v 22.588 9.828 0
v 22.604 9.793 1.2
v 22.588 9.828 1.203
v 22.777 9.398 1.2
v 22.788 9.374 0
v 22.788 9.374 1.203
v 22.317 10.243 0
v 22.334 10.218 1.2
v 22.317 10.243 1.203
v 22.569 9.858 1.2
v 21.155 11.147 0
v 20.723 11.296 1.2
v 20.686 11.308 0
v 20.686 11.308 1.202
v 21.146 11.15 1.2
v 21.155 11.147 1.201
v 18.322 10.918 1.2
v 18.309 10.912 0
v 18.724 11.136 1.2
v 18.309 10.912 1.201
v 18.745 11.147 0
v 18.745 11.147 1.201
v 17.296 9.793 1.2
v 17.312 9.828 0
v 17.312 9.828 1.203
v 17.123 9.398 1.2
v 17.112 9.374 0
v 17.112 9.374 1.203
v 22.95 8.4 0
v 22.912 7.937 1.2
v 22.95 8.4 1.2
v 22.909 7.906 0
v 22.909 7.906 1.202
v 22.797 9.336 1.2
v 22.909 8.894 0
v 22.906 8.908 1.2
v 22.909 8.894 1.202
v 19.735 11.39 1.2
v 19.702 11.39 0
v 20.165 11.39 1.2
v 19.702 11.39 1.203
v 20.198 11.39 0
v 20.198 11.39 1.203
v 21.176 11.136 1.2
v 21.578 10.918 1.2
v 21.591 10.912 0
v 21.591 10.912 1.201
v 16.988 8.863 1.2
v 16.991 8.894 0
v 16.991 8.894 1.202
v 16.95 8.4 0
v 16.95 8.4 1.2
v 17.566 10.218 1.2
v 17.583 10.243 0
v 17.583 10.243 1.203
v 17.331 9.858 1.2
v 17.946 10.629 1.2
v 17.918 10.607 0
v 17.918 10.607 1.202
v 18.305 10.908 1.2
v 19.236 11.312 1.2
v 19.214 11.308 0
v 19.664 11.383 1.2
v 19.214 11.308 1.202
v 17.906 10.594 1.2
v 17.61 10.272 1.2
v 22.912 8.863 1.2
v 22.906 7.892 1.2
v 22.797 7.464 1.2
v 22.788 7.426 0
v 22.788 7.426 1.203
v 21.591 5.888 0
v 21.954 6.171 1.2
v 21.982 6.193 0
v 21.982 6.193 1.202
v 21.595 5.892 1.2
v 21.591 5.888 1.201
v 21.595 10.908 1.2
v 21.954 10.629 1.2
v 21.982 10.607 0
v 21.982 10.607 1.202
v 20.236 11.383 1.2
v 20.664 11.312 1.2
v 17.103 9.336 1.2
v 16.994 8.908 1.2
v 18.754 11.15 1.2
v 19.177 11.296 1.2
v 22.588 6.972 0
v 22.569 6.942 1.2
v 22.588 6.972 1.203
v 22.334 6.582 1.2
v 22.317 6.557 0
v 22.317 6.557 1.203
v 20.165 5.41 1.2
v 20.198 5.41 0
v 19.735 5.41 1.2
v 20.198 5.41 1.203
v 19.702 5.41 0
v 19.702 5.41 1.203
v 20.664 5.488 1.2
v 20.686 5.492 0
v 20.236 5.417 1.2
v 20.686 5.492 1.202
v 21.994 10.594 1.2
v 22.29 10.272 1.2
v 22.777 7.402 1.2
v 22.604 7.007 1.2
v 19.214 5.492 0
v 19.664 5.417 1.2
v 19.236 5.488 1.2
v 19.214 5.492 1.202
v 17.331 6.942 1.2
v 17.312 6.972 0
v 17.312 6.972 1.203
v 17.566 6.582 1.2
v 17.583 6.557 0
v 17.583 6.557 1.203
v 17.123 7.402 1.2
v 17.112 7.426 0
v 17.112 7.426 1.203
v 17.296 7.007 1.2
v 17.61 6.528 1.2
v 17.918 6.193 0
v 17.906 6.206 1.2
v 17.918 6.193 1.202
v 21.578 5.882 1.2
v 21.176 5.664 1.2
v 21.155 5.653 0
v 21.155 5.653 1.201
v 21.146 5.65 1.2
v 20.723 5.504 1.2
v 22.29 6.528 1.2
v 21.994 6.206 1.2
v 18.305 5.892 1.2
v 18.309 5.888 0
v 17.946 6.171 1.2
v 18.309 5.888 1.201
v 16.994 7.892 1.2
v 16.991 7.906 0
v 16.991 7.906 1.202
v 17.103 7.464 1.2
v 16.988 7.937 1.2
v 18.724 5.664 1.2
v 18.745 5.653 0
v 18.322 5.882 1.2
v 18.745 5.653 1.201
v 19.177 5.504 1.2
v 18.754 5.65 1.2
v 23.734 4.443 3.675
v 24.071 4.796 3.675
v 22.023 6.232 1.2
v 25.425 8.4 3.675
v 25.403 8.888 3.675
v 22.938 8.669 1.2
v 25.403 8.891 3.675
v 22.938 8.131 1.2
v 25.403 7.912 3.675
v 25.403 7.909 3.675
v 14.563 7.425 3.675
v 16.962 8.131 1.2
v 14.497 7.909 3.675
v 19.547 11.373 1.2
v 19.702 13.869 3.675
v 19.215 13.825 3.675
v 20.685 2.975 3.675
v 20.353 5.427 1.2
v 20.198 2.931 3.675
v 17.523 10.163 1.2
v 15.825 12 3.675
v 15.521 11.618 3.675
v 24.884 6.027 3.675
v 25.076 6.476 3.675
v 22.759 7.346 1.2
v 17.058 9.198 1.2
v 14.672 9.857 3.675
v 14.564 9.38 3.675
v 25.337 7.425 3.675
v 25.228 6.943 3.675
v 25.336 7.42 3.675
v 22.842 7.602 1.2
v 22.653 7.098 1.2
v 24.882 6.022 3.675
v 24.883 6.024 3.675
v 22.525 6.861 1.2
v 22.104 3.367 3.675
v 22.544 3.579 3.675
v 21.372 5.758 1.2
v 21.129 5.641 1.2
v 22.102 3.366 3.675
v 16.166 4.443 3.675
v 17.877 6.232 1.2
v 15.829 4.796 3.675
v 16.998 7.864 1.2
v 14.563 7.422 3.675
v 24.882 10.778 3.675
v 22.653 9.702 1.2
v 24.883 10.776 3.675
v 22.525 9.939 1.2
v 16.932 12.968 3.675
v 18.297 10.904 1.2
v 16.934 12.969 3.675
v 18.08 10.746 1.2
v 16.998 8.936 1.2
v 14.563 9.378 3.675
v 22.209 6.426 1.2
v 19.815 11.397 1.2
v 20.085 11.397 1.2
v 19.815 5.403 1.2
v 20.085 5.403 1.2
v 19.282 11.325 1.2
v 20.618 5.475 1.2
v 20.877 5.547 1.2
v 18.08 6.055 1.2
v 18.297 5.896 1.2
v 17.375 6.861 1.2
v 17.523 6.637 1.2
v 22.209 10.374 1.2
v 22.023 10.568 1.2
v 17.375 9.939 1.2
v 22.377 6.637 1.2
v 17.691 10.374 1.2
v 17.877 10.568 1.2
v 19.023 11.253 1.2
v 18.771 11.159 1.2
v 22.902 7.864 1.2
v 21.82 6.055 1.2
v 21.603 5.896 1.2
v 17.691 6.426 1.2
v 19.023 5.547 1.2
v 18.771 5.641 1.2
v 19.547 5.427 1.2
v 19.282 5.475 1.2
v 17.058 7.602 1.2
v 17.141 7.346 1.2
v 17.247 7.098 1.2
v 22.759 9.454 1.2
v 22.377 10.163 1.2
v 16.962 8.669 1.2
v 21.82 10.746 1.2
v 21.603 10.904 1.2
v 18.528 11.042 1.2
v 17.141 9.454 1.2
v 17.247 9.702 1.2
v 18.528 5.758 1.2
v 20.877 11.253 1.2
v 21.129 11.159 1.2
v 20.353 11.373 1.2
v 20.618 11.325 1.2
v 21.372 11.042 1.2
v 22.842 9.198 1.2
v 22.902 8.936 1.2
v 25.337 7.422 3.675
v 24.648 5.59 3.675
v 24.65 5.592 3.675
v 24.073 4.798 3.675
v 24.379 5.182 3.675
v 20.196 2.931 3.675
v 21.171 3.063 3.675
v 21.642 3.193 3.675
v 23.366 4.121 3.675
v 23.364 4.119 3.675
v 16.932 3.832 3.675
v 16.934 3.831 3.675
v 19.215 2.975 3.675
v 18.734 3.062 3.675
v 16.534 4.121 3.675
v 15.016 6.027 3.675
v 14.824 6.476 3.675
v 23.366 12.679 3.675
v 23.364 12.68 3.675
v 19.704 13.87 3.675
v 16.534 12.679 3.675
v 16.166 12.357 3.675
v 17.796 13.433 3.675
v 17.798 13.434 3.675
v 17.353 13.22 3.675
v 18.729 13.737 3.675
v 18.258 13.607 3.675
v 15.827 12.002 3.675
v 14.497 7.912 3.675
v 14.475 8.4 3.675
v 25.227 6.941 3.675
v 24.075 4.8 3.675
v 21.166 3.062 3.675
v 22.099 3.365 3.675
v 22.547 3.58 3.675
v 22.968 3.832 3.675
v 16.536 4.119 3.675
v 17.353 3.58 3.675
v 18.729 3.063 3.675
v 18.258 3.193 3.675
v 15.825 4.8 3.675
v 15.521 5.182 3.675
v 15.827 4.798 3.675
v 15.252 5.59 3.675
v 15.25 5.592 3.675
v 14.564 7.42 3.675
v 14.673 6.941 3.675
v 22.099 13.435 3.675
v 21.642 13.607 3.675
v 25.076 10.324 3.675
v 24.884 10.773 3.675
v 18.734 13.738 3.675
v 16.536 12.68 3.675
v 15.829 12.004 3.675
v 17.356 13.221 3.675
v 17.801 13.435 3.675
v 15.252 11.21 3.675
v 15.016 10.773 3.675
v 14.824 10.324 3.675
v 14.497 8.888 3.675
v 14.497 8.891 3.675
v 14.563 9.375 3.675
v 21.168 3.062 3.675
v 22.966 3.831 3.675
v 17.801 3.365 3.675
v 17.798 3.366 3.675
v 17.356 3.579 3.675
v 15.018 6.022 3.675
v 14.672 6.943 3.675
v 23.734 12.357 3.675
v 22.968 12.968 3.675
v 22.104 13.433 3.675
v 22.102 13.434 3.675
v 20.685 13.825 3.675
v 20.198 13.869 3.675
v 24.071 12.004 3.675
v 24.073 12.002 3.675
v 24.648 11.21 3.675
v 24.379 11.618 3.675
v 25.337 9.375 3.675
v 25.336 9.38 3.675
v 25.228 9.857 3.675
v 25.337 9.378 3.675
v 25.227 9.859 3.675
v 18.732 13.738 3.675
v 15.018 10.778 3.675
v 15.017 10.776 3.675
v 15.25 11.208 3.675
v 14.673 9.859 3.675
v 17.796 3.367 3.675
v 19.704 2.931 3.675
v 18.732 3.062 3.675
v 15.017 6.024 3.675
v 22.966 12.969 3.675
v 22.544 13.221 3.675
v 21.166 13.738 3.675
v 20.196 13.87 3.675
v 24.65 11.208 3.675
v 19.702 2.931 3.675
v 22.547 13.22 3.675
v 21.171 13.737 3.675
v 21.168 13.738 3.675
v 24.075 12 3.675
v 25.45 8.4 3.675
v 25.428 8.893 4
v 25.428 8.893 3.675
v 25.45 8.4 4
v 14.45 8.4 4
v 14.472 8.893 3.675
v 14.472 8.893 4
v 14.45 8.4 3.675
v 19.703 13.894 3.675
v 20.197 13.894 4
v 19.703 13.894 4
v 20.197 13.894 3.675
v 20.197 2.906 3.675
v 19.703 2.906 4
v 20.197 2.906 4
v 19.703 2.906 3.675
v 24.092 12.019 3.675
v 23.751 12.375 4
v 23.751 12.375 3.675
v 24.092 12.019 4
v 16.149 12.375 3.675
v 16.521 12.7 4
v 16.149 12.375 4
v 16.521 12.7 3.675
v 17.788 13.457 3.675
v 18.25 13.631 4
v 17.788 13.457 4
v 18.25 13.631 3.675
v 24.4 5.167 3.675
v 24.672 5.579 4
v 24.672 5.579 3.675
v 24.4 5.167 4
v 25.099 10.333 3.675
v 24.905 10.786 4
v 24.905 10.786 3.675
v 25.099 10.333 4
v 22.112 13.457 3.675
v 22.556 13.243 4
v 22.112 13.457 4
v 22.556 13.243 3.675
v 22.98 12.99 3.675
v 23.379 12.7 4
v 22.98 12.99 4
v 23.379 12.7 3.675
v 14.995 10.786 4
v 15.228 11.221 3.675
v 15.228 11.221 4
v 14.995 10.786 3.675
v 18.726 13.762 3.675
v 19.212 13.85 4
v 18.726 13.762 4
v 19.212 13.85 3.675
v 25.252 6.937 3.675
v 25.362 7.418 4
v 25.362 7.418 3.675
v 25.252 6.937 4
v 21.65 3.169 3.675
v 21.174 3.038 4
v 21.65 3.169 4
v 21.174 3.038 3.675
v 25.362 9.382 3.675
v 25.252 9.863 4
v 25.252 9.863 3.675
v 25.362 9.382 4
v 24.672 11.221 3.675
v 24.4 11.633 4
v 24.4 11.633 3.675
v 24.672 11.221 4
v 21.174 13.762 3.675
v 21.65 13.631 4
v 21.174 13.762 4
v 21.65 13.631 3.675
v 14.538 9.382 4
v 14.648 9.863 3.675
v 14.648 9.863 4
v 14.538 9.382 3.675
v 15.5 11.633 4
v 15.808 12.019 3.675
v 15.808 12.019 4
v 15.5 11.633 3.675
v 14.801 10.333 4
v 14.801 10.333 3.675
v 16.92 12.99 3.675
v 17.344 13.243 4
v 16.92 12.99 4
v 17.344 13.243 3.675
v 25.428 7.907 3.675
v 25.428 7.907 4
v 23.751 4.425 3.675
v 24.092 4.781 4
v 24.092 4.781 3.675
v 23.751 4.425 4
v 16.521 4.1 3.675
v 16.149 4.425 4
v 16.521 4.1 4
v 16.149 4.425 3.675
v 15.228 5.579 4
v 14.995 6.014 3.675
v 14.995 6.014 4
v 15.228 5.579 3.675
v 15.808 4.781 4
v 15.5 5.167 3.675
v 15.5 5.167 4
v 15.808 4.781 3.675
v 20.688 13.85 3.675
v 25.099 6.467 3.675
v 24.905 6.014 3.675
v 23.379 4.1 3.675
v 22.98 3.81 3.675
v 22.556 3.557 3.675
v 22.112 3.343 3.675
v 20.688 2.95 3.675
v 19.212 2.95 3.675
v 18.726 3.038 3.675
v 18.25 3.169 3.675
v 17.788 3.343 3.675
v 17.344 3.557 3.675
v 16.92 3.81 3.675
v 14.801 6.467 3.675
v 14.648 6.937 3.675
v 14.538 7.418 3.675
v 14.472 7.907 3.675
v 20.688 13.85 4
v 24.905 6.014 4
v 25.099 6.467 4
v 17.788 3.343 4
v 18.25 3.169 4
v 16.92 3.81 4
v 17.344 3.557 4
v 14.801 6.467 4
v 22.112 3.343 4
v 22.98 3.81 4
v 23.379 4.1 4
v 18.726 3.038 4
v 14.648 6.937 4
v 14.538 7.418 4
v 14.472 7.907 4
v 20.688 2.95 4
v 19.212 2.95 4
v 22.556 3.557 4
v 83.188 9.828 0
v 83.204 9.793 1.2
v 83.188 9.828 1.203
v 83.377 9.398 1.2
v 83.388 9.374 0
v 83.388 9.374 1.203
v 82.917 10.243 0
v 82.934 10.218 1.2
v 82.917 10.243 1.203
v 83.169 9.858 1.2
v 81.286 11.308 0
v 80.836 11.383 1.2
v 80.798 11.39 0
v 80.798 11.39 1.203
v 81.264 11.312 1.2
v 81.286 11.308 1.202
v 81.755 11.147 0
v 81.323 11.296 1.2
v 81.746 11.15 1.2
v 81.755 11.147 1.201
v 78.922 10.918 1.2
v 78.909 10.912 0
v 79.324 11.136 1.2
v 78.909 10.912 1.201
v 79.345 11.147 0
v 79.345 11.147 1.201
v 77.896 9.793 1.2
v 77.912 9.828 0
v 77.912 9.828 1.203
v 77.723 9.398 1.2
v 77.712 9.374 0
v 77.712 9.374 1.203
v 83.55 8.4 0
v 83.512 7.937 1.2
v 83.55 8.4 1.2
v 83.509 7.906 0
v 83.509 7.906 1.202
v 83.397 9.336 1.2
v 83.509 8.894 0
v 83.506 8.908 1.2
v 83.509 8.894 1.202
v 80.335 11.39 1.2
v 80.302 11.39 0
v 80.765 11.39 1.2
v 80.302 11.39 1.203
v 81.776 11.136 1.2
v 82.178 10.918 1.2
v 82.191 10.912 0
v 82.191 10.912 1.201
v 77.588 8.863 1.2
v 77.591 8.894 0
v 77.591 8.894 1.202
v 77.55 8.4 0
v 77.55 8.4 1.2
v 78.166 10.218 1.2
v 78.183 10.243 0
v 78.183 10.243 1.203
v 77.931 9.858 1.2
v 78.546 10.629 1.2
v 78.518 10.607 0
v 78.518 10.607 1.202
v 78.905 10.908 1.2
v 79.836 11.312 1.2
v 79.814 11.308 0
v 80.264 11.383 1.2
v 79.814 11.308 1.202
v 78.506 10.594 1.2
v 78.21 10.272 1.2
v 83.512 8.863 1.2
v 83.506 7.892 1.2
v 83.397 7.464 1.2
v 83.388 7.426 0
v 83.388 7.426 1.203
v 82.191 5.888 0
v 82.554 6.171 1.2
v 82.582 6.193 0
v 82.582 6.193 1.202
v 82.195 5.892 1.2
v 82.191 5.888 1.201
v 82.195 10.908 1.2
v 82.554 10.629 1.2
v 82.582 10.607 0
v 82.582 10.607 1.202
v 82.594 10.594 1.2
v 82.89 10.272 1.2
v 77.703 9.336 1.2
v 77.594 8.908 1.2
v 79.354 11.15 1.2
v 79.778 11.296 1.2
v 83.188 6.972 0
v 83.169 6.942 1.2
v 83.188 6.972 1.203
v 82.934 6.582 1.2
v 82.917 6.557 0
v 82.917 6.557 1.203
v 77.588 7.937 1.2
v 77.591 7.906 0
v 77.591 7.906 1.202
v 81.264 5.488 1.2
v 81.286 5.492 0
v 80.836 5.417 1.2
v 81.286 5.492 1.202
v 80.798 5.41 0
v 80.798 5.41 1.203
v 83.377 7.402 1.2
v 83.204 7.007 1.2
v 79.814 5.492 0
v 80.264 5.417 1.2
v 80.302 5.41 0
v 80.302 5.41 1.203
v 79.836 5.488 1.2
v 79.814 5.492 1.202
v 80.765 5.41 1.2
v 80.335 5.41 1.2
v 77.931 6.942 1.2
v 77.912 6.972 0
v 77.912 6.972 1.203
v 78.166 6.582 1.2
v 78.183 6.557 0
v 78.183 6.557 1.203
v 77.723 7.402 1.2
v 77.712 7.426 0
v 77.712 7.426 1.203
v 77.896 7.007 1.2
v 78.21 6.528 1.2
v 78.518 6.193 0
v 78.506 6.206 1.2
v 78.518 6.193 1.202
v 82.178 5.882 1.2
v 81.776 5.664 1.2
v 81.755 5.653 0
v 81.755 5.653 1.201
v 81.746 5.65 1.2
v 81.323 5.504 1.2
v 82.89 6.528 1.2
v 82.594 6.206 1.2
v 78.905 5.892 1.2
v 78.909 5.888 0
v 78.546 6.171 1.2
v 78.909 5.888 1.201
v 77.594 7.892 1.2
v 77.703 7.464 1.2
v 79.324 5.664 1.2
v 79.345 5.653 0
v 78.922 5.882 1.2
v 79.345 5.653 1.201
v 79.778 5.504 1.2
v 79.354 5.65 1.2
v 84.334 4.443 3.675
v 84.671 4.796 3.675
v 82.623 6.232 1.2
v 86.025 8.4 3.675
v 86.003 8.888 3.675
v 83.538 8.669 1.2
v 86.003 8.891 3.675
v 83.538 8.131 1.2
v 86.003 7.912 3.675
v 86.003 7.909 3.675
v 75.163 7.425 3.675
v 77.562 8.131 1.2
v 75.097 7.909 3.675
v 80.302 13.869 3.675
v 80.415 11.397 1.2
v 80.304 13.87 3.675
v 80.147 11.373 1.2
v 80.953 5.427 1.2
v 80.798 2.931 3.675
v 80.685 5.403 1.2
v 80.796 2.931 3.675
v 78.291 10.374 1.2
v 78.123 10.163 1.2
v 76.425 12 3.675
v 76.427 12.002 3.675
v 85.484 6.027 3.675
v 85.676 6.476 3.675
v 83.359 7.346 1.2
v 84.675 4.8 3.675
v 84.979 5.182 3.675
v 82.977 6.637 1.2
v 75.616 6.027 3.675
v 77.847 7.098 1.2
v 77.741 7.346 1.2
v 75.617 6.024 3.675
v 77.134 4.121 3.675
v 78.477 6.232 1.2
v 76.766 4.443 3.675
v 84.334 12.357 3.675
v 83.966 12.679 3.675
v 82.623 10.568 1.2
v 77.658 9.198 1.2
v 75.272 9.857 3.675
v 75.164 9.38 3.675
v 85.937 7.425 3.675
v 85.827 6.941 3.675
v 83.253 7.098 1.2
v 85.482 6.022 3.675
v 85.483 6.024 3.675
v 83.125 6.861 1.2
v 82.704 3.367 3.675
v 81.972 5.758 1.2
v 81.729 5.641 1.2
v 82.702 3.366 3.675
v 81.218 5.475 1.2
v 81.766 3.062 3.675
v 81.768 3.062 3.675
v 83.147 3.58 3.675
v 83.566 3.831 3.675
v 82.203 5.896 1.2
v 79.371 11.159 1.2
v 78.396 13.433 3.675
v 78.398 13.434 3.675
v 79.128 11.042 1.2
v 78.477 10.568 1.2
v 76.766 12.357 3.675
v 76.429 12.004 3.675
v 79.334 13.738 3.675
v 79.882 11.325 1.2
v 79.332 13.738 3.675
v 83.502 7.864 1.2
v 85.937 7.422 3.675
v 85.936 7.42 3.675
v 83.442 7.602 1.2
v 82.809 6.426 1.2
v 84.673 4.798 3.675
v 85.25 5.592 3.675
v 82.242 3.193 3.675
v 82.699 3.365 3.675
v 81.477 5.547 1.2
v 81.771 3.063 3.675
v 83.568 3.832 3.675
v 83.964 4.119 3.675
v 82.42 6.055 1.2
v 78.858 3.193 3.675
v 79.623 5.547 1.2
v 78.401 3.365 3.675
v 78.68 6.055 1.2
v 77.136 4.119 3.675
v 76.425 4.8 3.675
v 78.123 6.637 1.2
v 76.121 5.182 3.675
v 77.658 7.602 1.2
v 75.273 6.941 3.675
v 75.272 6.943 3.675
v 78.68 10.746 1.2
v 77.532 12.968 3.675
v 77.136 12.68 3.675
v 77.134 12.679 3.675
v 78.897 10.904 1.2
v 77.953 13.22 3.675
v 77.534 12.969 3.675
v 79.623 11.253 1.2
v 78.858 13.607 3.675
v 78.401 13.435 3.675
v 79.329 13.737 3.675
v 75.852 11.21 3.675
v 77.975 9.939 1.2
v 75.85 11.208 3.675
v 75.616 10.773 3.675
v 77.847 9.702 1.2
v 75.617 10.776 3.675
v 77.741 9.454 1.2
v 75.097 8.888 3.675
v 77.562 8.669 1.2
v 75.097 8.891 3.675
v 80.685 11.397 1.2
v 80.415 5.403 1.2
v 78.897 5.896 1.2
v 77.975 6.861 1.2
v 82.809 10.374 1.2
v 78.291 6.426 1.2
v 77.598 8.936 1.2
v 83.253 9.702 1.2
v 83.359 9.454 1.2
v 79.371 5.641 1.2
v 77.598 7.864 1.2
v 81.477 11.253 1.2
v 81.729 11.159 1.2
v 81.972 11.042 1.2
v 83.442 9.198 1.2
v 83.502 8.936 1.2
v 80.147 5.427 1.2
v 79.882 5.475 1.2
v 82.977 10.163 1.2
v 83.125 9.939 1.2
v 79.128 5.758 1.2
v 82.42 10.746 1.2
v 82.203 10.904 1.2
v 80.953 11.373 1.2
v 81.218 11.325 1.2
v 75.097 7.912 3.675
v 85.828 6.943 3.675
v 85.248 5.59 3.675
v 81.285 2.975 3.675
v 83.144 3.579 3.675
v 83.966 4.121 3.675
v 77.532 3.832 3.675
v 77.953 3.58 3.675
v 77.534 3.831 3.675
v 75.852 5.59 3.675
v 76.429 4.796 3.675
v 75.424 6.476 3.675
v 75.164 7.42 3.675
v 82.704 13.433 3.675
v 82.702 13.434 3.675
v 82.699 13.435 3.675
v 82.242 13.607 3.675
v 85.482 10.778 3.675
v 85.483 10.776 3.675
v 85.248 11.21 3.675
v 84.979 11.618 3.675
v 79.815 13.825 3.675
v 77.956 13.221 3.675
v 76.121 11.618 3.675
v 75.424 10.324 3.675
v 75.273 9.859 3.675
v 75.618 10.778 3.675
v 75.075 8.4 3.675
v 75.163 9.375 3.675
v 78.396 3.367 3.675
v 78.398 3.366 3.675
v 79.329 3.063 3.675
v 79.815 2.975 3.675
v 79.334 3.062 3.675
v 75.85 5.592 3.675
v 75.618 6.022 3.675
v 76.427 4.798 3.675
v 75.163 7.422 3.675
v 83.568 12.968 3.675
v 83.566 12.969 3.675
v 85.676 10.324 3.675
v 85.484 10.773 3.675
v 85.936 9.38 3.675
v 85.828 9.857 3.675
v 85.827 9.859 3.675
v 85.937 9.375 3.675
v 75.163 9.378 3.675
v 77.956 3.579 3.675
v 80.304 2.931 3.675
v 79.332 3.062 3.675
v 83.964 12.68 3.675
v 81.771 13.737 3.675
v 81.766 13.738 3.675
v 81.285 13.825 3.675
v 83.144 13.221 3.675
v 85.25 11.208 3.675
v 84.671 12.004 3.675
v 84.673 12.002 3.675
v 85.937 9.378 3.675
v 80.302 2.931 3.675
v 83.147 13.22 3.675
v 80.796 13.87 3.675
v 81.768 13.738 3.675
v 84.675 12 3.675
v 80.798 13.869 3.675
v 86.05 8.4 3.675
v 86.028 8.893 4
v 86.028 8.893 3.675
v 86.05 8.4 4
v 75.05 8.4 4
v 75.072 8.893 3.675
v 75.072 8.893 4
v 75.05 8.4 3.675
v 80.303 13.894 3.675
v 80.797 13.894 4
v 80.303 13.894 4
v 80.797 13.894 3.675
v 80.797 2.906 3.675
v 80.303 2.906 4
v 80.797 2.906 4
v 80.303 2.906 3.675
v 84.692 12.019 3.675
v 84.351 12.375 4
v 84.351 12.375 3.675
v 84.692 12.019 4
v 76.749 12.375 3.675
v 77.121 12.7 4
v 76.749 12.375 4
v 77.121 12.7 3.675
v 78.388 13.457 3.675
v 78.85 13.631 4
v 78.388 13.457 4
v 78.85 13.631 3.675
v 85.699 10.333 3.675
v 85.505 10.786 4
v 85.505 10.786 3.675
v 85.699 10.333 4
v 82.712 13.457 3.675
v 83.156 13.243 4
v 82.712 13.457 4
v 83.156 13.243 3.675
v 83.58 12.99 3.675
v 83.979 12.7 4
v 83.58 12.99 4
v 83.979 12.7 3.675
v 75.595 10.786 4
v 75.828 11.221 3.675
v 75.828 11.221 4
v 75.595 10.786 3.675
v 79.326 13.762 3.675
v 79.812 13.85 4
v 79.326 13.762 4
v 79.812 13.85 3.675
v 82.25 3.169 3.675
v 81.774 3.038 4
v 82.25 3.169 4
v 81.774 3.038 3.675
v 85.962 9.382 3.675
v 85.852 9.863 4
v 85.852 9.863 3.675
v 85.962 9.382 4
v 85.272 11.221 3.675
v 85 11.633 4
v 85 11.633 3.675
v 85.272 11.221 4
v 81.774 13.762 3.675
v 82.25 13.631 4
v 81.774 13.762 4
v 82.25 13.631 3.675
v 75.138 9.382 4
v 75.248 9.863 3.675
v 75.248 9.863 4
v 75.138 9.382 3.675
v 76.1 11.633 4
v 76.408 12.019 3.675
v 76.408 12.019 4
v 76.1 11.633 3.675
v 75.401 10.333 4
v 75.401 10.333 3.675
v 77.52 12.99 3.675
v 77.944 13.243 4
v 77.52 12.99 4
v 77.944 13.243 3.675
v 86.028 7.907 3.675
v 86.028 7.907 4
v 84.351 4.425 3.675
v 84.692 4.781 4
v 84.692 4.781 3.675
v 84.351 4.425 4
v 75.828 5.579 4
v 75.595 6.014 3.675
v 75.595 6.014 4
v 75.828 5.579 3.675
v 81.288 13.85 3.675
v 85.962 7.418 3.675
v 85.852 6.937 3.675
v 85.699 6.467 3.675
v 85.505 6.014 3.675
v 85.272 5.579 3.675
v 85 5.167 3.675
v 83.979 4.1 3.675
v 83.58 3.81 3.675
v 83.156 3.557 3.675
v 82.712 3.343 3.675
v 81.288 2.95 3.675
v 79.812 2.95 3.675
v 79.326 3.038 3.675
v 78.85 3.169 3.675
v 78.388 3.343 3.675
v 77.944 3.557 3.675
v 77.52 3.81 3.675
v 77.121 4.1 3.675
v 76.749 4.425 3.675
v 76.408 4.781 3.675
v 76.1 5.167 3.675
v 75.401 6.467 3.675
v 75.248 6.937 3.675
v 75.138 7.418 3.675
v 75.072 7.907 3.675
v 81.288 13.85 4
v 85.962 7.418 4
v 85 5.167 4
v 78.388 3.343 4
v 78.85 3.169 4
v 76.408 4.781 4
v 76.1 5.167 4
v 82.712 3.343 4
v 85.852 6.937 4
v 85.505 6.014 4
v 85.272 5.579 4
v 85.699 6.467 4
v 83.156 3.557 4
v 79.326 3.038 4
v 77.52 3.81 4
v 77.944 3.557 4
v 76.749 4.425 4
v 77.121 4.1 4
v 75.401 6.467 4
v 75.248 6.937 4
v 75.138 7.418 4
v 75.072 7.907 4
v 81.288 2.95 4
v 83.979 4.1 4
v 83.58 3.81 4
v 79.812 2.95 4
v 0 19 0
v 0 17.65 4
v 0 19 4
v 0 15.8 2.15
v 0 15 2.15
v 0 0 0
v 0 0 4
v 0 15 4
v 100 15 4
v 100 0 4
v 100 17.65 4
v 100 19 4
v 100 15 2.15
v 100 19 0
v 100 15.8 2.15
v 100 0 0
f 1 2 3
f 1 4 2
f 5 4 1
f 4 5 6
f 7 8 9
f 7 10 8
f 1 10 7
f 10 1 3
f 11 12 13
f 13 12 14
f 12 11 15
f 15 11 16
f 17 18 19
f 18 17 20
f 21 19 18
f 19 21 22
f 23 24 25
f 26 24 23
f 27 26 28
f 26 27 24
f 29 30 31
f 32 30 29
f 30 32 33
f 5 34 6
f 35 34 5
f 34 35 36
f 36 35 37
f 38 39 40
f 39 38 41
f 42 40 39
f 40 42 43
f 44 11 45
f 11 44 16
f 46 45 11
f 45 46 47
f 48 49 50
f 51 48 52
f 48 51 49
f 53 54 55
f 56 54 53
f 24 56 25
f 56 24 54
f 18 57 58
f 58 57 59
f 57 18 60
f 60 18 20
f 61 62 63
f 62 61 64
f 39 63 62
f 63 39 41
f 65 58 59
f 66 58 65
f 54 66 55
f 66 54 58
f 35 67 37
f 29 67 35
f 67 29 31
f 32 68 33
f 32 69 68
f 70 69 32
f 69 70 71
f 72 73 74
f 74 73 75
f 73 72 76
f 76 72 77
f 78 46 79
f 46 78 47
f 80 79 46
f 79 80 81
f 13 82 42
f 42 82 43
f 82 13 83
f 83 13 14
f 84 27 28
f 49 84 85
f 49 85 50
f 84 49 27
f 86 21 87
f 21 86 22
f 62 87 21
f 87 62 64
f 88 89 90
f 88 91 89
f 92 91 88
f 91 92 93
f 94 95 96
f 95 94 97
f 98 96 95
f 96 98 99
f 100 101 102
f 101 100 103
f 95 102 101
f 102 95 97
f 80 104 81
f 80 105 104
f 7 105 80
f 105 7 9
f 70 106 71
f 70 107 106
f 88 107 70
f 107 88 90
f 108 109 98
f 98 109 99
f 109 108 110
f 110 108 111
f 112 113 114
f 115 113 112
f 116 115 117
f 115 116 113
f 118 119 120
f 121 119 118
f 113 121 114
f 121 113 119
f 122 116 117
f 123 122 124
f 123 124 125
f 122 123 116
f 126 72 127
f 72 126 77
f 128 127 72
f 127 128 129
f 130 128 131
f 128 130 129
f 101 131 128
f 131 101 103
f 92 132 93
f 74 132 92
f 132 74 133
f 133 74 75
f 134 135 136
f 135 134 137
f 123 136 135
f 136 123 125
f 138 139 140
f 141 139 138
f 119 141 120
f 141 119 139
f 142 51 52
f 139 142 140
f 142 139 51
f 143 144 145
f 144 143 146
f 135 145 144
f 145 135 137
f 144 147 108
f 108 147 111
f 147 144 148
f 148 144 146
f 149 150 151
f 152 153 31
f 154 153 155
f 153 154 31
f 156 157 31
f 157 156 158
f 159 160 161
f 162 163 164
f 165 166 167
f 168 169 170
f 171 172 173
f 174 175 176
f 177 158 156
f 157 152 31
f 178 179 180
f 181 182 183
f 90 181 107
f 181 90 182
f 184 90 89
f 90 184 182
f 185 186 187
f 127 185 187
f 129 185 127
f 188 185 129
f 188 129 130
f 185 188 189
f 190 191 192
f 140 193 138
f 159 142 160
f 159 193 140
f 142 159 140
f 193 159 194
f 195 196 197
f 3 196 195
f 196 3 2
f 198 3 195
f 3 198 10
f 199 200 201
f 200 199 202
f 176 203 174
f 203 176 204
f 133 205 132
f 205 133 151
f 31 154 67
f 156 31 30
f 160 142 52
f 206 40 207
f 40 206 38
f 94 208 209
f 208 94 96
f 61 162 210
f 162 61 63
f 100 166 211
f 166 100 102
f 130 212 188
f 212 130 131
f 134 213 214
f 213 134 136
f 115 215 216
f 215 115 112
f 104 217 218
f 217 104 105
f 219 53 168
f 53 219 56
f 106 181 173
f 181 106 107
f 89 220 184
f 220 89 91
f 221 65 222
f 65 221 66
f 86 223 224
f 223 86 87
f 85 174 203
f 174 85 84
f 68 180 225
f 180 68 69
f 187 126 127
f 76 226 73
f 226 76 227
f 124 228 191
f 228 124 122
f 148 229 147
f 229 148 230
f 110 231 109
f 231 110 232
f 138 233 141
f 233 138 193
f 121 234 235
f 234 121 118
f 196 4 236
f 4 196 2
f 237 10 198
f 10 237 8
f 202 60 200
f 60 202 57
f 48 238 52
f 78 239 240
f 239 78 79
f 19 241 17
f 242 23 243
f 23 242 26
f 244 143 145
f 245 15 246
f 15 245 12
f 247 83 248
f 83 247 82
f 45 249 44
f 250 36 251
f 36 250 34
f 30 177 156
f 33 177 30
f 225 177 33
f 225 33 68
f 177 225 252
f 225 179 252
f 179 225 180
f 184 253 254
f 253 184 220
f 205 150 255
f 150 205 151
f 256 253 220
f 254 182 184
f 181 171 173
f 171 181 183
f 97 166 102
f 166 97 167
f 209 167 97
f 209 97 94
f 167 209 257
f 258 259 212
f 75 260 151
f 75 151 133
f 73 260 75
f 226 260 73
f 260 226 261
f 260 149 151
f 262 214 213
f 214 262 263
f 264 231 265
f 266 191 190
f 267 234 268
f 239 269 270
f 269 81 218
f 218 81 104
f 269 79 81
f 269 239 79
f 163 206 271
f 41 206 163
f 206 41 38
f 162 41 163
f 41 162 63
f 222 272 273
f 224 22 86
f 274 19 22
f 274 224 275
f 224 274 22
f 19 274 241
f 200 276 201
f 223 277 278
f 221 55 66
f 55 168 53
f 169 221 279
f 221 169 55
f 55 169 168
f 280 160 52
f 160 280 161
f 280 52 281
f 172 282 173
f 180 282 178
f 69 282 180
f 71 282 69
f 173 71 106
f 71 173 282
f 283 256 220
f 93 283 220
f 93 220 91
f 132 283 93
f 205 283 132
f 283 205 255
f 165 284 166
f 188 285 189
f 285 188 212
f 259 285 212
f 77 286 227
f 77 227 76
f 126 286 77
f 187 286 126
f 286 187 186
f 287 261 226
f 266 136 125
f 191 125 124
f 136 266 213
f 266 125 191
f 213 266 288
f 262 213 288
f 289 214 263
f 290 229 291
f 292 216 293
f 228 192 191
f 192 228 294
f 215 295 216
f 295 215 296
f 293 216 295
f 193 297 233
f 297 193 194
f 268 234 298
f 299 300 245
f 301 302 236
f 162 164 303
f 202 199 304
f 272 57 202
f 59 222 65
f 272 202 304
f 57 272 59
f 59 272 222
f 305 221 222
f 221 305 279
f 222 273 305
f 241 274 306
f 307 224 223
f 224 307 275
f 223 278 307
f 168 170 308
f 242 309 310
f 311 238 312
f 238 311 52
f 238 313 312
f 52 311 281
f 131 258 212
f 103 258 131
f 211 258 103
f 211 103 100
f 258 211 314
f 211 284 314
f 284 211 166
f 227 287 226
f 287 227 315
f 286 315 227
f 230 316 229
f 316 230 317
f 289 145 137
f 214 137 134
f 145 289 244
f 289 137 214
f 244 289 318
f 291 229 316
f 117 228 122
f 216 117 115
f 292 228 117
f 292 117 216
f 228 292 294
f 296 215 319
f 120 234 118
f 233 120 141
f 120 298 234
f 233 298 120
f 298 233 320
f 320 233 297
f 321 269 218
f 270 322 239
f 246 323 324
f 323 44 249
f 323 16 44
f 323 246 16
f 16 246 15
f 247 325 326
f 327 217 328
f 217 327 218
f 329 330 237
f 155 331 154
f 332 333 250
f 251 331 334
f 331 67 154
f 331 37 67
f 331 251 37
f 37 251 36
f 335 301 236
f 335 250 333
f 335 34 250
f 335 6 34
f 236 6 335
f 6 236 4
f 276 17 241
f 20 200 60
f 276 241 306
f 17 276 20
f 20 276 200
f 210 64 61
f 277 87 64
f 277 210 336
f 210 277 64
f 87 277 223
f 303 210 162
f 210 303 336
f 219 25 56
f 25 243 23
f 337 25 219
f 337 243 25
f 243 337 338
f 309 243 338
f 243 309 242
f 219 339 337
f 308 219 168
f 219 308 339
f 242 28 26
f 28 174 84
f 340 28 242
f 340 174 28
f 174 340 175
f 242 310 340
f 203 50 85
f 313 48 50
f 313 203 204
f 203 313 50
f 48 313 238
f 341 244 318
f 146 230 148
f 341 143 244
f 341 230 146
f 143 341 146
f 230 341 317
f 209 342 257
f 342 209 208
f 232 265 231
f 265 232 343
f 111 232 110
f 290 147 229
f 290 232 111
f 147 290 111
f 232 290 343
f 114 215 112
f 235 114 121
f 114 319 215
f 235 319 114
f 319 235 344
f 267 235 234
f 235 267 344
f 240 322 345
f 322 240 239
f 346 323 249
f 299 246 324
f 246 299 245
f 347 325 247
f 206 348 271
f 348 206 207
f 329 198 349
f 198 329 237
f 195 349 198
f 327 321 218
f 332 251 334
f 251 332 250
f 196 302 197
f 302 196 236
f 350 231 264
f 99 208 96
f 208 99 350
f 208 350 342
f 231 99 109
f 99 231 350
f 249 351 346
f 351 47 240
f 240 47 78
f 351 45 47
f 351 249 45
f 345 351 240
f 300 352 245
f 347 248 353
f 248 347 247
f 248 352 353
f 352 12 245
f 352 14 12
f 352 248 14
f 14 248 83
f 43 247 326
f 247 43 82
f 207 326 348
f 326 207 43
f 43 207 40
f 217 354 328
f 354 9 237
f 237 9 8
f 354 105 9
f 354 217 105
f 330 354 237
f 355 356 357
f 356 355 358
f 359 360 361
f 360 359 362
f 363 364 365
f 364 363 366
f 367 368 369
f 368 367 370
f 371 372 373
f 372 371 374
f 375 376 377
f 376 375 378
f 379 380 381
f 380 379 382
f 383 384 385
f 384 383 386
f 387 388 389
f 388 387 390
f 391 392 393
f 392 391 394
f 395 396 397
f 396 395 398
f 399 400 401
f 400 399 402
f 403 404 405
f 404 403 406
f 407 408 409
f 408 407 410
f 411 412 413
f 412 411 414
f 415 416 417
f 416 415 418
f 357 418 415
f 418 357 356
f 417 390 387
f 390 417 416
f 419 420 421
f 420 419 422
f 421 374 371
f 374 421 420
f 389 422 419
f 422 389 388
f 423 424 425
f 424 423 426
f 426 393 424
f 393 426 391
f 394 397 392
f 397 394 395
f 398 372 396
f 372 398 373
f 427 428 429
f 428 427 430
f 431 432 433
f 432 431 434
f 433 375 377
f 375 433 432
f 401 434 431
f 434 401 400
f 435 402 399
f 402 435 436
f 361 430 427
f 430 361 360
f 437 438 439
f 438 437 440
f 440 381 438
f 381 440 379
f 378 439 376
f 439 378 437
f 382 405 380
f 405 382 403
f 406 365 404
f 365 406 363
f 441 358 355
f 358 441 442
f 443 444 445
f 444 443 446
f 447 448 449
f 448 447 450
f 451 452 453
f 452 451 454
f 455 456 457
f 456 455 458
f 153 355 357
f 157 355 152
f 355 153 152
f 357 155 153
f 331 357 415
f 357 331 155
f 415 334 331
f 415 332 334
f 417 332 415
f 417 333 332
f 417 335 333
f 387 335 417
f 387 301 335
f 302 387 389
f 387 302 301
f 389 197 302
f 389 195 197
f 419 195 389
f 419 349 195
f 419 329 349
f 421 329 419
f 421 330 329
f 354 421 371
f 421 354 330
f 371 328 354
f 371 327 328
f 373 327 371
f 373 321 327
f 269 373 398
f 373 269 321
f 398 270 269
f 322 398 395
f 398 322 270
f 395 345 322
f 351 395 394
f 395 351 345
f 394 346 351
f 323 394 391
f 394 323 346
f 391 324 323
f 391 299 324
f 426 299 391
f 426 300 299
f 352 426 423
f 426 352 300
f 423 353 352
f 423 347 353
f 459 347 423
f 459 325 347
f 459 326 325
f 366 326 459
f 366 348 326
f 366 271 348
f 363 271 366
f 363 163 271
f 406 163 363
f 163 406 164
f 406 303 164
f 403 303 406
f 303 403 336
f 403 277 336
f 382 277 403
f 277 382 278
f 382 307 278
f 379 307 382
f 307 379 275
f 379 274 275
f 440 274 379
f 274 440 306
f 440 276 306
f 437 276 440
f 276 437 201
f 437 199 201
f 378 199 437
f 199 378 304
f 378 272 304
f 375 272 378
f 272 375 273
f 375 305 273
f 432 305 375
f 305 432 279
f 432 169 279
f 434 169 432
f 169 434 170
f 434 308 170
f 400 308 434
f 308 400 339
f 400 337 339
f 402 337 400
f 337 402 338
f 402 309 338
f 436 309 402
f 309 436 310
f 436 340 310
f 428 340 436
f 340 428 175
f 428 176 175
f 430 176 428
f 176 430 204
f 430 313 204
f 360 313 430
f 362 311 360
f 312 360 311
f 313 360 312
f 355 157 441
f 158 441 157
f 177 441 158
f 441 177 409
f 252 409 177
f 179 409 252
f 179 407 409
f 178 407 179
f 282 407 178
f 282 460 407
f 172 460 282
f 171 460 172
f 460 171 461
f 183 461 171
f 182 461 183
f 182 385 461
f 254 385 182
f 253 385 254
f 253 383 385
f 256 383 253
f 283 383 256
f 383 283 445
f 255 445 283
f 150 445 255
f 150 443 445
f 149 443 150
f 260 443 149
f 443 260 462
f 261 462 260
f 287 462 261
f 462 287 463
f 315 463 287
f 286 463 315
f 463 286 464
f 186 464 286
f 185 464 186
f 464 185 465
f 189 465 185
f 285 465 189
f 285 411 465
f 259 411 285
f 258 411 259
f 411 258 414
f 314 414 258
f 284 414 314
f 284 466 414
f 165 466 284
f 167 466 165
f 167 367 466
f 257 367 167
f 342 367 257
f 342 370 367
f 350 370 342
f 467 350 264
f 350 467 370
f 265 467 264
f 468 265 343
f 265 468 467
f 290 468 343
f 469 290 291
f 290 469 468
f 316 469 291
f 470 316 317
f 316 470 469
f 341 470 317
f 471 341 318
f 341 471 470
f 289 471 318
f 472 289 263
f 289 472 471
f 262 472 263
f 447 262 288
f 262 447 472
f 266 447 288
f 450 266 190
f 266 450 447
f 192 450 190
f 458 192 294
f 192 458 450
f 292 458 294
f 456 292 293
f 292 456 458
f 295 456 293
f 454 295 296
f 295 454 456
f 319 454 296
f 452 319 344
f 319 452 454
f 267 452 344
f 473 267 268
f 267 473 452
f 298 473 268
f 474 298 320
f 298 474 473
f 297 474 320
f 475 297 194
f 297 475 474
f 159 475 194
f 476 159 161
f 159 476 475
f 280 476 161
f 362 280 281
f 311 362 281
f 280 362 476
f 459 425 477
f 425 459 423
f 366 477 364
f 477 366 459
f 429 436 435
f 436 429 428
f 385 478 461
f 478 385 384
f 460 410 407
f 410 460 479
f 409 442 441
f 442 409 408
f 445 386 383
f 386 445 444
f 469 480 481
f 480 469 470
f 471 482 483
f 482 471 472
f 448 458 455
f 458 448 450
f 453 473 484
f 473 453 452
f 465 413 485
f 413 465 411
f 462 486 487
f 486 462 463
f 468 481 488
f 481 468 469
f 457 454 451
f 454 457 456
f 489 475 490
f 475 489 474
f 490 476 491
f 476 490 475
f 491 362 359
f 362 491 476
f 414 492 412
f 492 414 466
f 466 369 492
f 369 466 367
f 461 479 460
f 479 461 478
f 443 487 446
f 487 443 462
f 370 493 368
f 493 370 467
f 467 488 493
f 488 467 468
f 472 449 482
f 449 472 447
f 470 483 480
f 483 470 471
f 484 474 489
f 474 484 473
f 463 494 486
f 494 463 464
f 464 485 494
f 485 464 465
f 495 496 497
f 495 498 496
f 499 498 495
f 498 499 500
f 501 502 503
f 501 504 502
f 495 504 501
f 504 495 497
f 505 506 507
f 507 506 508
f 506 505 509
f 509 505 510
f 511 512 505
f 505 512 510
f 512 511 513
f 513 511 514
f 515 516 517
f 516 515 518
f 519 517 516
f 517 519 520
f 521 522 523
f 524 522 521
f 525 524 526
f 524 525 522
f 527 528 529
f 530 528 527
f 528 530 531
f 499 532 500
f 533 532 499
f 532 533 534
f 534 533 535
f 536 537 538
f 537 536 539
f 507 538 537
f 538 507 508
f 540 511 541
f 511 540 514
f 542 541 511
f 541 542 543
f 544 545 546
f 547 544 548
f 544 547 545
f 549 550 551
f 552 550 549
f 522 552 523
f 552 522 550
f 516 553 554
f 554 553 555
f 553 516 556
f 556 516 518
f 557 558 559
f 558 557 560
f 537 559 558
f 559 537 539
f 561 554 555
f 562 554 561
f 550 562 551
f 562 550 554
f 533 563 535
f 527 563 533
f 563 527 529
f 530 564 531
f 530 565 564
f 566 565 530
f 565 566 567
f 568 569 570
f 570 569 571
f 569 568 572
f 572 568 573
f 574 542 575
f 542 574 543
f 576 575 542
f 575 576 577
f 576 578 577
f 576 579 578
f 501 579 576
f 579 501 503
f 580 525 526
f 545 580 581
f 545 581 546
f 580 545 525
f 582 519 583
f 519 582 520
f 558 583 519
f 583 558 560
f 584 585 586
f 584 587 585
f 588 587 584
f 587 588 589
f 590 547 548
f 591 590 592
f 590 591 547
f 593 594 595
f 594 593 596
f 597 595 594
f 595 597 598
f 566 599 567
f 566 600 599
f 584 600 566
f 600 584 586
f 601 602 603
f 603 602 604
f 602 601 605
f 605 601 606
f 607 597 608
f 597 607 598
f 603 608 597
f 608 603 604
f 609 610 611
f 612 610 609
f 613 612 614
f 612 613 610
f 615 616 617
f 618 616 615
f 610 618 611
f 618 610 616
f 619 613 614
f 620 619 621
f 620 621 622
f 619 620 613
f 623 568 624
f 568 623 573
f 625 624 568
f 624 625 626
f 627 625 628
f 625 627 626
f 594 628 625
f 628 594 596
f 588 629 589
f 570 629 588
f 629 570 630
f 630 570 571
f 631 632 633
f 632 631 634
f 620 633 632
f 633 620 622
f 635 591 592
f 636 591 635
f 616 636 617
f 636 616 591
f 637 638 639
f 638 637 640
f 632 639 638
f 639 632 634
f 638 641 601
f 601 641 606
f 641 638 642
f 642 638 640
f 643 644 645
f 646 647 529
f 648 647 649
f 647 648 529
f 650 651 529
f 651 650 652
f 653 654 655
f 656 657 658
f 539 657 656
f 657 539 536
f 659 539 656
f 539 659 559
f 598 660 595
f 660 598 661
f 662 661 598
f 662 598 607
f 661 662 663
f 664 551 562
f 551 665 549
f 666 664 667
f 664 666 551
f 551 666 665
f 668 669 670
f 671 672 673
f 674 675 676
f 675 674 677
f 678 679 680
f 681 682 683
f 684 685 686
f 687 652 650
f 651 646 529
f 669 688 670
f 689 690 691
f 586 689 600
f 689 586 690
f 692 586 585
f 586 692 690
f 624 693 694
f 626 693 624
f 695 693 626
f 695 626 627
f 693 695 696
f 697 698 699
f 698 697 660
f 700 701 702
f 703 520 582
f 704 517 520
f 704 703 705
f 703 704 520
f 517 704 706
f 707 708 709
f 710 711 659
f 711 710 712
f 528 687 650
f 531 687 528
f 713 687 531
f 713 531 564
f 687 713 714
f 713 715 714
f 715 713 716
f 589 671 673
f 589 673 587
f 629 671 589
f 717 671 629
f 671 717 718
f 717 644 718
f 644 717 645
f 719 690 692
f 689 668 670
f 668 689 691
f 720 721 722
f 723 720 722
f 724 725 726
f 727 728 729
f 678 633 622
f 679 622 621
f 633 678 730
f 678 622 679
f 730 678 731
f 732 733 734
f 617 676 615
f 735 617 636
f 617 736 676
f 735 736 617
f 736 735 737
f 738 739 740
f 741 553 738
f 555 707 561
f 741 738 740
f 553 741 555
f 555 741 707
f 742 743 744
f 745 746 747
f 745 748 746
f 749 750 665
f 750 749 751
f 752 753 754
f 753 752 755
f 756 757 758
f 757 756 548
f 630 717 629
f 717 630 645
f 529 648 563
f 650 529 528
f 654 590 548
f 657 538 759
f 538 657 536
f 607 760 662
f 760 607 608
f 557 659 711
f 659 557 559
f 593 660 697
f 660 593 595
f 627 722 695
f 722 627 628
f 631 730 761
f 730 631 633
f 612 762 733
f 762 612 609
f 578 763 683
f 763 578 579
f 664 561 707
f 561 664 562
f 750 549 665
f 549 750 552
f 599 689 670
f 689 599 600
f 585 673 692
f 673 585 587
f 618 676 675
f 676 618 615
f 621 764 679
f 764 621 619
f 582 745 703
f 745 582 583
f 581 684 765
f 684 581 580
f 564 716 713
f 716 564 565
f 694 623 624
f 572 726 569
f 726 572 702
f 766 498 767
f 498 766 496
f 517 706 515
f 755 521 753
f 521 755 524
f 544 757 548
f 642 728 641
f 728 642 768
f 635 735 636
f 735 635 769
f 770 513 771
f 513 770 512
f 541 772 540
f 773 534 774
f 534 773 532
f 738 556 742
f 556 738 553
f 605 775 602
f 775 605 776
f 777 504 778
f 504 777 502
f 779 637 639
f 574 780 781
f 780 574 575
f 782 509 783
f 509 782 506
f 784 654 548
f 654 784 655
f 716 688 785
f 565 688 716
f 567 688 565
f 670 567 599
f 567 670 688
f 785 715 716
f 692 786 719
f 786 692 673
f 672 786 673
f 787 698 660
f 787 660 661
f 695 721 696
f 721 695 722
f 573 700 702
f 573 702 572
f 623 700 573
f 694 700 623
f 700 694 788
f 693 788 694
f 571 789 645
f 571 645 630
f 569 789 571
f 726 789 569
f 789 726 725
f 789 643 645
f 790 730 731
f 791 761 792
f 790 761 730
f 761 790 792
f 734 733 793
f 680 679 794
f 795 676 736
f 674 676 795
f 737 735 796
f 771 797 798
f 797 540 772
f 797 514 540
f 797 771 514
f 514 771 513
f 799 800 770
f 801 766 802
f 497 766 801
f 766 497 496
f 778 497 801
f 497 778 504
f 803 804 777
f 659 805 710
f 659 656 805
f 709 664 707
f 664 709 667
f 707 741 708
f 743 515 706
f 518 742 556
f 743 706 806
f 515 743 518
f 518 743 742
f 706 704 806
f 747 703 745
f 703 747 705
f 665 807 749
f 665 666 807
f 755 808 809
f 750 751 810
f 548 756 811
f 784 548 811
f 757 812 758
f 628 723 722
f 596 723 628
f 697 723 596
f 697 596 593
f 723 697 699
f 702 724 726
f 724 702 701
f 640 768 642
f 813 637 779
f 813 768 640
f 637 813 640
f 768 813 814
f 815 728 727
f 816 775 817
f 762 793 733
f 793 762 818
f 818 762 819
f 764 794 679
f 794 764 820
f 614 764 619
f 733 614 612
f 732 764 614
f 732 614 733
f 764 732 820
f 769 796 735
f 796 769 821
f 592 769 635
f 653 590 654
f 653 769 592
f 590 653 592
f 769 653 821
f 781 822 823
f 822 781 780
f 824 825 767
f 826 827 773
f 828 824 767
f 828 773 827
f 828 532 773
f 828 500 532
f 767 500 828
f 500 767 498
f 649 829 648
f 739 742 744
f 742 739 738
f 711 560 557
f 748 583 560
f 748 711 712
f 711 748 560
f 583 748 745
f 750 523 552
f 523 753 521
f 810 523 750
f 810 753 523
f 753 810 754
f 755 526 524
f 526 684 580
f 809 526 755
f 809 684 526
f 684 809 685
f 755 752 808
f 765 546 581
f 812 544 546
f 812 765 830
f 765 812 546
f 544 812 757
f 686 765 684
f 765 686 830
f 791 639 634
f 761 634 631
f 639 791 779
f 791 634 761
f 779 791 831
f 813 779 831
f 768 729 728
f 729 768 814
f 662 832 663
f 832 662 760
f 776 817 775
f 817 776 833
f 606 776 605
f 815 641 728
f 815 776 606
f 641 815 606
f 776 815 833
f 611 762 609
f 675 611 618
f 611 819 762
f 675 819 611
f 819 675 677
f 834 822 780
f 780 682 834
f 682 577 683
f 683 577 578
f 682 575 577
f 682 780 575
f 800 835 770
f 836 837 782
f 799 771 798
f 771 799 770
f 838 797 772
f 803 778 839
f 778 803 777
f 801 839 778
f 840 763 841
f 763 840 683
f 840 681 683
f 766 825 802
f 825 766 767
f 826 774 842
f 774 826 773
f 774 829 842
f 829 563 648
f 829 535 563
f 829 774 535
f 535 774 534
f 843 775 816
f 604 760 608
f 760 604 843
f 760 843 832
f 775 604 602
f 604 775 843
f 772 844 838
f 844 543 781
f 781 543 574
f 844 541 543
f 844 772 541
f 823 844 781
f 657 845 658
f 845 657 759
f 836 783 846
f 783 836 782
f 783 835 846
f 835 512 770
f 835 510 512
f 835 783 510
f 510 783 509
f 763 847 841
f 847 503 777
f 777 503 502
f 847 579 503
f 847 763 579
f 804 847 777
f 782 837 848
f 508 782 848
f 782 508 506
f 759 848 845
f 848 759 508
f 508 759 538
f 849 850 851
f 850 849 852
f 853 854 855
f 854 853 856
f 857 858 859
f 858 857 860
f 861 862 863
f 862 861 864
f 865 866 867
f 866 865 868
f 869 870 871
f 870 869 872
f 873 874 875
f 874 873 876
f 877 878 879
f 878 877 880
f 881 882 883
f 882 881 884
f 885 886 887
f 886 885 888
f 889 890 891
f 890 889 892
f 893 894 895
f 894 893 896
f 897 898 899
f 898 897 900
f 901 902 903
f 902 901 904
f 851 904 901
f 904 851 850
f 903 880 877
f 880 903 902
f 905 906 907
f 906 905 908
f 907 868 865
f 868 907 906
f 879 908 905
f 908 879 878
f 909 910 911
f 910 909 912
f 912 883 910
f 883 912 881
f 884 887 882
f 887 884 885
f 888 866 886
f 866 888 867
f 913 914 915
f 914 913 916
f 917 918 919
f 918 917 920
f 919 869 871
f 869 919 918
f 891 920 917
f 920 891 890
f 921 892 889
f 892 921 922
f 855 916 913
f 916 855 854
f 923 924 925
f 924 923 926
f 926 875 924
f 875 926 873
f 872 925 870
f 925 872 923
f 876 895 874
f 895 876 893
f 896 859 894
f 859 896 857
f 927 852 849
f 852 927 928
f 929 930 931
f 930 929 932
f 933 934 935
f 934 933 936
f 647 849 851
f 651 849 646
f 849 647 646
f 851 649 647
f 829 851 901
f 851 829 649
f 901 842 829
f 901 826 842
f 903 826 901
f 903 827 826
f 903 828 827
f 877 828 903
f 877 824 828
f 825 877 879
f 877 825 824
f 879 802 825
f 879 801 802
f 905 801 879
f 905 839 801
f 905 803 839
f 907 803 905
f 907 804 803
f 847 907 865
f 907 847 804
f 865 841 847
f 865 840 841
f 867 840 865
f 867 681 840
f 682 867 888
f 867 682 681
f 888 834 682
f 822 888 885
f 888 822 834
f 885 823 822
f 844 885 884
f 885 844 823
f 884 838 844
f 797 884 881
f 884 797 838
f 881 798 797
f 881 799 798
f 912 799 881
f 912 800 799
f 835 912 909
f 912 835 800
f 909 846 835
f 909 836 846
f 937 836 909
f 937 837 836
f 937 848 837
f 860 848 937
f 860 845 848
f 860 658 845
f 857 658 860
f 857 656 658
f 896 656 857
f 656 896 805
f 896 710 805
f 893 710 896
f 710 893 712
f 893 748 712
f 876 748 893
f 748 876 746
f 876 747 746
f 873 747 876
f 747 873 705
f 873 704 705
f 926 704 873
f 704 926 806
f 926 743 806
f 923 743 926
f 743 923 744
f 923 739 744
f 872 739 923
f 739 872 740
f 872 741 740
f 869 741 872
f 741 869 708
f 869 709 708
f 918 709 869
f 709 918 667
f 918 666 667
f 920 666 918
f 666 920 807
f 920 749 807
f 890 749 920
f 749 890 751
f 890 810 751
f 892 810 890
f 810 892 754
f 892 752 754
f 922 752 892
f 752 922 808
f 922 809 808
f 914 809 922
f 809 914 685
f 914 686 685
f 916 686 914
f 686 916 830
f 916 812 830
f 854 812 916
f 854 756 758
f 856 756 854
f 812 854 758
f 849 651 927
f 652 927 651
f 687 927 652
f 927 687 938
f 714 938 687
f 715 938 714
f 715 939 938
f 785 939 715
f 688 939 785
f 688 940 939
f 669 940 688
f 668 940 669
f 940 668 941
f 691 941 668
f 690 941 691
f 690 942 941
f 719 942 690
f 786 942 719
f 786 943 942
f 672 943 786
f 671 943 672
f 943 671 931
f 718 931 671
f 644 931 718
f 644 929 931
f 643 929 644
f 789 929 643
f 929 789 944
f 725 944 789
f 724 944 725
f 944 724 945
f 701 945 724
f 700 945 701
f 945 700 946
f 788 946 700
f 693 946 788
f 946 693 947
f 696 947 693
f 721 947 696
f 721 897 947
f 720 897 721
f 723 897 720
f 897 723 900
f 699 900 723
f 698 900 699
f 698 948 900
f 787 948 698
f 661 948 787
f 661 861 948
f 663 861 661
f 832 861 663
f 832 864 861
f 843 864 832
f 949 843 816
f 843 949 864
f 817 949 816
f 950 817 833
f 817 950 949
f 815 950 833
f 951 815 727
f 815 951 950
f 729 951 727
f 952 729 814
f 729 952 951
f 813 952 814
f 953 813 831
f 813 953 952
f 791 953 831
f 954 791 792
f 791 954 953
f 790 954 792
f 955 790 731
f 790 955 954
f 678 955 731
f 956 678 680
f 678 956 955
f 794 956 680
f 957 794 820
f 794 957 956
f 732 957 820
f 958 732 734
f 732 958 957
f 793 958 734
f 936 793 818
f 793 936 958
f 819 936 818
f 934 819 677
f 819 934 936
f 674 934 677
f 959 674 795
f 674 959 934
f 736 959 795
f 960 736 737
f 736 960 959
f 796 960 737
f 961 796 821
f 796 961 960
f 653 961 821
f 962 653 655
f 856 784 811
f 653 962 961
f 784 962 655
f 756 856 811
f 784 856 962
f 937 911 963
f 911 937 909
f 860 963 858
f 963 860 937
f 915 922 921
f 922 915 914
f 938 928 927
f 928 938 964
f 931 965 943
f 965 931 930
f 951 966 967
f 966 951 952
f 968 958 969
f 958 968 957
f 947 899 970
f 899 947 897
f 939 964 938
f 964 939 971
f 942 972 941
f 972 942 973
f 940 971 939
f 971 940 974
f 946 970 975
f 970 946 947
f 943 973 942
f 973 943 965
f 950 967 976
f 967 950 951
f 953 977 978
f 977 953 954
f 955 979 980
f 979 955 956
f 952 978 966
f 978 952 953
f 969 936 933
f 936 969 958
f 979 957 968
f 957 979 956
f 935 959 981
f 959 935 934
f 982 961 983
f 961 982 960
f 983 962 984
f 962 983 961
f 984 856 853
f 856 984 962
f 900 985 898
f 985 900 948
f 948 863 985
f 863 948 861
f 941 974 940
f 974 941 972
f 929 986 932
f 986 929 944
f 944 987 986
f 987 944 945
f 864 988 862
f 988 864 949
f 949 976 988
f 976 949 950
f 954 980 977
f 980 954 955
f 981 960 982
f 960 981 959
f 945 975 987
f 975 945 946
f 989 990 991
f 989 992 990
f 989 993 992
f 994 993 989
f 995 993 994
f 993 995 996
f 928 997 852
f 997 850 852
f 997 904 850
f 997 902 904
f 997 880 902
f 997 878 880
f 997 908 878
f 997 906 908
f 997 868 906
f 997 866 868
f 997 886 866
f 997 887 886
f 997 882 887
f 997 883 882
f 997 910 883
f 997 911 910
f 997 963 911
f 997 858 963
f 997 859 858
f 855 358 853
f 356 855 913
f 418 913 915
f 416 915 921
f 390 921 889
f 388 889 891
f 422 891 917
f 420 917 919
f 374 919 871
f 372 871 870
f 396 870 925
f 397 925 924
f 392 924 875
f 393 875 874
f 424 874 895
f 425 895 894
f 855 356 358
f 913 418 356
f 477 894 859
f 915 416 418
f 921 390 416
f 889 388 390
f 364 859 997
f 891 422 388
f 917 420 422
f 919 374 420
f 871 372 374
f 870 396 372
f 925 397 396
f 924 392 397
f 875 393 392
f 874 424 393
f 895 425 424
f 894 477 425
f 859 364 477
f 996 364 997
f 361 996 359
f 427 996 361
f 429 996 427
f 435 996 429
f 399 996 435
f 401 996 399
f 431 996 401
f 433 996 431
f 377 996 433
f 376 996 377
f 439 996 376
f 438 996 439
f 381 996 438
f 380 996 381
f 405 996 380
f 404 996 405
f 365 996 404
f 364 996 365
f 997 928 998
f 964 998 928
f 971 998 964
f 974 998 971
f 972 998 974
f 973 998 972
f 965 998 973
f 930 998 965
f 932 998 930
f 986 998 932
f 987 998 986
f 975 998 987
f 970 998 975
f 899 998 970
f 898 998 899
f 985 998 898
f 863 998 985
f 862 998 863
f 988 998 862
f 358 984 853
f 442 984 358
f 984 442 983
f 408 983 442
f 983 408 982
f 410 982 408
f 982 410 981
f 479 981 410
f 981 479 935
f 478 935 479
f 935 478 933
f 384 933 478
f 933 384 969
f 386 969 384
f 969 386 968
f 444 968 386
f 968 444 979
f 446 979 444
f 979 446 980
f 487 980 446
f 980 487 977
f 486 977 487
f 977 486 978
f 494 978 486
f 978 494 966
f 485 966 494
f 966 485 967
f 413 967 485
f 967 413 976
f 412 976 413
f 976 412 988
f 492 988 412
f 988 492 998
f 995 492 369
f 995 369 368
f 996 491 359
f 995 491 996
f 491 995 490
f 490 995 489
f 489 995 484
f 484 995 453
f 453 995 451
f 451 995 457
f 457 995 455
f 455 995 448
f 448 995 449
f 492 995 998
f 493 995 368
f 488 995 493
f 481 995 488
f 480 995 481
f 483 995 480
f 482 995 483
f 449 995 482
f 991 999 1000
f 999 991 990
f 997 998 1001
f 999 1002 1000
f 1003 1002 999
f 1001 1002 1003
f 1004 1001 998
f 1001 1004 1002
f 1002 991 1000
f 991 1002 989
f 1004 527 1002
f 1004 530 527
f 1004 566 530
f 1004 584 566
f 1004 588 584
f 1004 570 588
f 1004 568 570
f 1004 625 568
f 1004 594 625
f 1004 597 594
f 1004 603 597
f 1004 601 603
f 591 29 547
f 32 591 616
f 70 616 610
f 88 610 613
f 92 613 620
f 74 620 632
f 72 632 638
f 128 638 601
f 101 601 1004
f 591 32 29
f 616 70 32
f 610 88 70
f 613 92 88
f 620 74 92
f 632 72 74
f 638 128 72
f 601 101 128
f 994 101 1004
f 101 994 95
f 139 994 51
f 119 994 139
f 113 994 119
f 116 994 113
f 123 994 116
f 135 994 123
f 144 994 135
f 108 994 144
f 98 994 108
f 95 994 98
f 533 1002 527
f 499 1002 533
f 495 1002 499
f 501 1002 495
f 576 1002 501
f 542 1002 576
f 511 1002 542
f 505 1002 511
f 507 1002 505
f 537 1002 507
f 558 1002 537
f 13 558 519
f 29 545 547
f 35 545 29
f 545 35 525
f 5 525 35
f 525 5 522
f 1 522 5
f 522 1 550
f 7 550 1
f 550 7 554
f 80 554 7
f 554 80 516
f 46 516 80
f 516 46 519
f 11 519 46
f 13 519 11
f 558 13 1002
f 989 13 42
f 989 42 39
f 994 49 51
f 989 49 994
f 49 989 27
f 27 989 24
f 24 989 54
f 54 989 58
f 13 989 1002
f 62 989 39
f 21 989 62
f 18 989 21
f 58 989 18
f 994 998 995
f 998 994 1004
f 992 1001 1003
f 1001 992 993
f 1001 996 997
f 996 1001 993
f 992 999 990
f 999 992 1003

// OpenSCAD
/*
 * global defines
 * dimensions represent mm
 */
$fa=2;
$fs=0.5;

/// grid plane in which to place the main
/// construction geometry
/// 0 = xy
/// 1 = xz
/// 2 = yz
global_geometry_plane=0;

/// grid quadrant in which to place the main
/// construction geometry
/// 0 = centered
global_geometry_quadrant=1;

// jaw: basic jaw slab
jaw_length=100;
jaw_width=19;
jaw_thickness=4;

// bolt: bolt hole carvout
bolt_radius=3;
bolt_x_offset=0.25; /// x/y offsets account for bolt hole locations
bolt_y_offset=-1.1; /// being slightly out in manufacturing
bolt_sink=0.3;      // sink the bolt head deeper into the jaw
bolt_distance=60.6; // distance between bolt centers
bolt_chamfer=2.5;   // 45° chamfer will be applied

// slot: slot/groove to be made in the jaw
slot_inner_width=0.8;    // slot width at deepest point
slot_chamfer_width=1.85; // extra width from chamfer
slot_depth=1.85;
slot_ratio=1.0;   // location of slot as a proportion of jaw
slot_y_offset=-4; // offset applied on top of slot_ratio


/*
 * module and function definitions
 */
// bolt object composed of main cylinder, chamfer cone,
// and optional extra cylinder to sink the bolt down
module bolt(h,r) {
	translate([0,0,-1]) cylinder(h=h+1,r=r);
	translate([0,0,h-bolt_chamfer-bolt_sink])
		cylinder(h=bolt_chamfer,r1=r,r2=r+bolt_chamfer);
	translate([0,0,h-bolt_sink-.025])
		cylinder(h=bolt_sink+1,r=r+bolt_chamfer);
}

// return the center point between the two bolts
function bolt_center() =
	[
		jaw_length/2-bolt_distance/2+bolt_x_offset,
		jaw_width/2+bolt_y_offset,
		0
	];

// slot object which is narrow at the deepest part and then
// widens in a chamfer to a maximum as it reaches the surface
module slot(length) {
//	translate([-1,0,0])
//		cube([length+2, slot_inner_width, slot_depth+1]);
	translate([length+1,0,0])
		rotate([90,0,-90])
		linear_extrude(height=length+2)
			polygon([
				[0,-slot_depth],
				[slot_inner_width,-slot_depth],
				[slot_inner_width,1],
				[-slot_chamfer_width,1],
				[-slot_chamfer_width,0],
				[0,-slot_depth]		
			]);
};

// return the position of the slot (bottom of y)
function slot_position(ratio=0.5,offset=0) =
	[
		0,
		jaw_width*ratio+slot_inner_width+offset,
		jaw_thickness
	];

/// rotate the geometry globally
/// plane - the plane to use as the surface for
///         the main construction geometry
///         0 = xy
///         1 = xz
///         2 = yz
module global_rotate(plane=0) {
	if (plane == 1)
		rotate([90,0,0]) children();
	else if (plane == 2)
		rotate([90,0,90]) children();
	else
		children();
}

/// translate the geometry globally
/// quadrant - the grid quadrant to use as the
///         surface for the main construction
///         geometry
///         0 = center on origin
module global_translate(quadrant=1) {
	if (quadrant == 0)
		translate([-jaw_length/2,-jaw_width/2,0]) children();
	else if (quadrant == 2)
		translate([-jaw_length,0,0]) children();
	else if (quadrant == 3)
		translate([-jaw_length,-jaw_width,0]) children();
	else if (quadrant == 4)
		translate([0,-jaw_width,0]) children();
	else
		children();
}

/*
 * main construction geometry
 */
global_rotate(global_geometry_plane)
	global_translate(global_geometry_quadrant)
		difference() {
			cube([jaw_length, jaw_width, jaw_thickness]);
			translate(bolt_center()) {
				bolt(h=jaw_thickness, r=bolt_radius);
				translate([bolt_distance,0,0])
					bolt(h=jaw_thickness, r=bolt_radius);
			}
			translate(slot_position(ratio=slot_ratio,offset=slot_y_offset))
				slot(jaw_length);
		}
